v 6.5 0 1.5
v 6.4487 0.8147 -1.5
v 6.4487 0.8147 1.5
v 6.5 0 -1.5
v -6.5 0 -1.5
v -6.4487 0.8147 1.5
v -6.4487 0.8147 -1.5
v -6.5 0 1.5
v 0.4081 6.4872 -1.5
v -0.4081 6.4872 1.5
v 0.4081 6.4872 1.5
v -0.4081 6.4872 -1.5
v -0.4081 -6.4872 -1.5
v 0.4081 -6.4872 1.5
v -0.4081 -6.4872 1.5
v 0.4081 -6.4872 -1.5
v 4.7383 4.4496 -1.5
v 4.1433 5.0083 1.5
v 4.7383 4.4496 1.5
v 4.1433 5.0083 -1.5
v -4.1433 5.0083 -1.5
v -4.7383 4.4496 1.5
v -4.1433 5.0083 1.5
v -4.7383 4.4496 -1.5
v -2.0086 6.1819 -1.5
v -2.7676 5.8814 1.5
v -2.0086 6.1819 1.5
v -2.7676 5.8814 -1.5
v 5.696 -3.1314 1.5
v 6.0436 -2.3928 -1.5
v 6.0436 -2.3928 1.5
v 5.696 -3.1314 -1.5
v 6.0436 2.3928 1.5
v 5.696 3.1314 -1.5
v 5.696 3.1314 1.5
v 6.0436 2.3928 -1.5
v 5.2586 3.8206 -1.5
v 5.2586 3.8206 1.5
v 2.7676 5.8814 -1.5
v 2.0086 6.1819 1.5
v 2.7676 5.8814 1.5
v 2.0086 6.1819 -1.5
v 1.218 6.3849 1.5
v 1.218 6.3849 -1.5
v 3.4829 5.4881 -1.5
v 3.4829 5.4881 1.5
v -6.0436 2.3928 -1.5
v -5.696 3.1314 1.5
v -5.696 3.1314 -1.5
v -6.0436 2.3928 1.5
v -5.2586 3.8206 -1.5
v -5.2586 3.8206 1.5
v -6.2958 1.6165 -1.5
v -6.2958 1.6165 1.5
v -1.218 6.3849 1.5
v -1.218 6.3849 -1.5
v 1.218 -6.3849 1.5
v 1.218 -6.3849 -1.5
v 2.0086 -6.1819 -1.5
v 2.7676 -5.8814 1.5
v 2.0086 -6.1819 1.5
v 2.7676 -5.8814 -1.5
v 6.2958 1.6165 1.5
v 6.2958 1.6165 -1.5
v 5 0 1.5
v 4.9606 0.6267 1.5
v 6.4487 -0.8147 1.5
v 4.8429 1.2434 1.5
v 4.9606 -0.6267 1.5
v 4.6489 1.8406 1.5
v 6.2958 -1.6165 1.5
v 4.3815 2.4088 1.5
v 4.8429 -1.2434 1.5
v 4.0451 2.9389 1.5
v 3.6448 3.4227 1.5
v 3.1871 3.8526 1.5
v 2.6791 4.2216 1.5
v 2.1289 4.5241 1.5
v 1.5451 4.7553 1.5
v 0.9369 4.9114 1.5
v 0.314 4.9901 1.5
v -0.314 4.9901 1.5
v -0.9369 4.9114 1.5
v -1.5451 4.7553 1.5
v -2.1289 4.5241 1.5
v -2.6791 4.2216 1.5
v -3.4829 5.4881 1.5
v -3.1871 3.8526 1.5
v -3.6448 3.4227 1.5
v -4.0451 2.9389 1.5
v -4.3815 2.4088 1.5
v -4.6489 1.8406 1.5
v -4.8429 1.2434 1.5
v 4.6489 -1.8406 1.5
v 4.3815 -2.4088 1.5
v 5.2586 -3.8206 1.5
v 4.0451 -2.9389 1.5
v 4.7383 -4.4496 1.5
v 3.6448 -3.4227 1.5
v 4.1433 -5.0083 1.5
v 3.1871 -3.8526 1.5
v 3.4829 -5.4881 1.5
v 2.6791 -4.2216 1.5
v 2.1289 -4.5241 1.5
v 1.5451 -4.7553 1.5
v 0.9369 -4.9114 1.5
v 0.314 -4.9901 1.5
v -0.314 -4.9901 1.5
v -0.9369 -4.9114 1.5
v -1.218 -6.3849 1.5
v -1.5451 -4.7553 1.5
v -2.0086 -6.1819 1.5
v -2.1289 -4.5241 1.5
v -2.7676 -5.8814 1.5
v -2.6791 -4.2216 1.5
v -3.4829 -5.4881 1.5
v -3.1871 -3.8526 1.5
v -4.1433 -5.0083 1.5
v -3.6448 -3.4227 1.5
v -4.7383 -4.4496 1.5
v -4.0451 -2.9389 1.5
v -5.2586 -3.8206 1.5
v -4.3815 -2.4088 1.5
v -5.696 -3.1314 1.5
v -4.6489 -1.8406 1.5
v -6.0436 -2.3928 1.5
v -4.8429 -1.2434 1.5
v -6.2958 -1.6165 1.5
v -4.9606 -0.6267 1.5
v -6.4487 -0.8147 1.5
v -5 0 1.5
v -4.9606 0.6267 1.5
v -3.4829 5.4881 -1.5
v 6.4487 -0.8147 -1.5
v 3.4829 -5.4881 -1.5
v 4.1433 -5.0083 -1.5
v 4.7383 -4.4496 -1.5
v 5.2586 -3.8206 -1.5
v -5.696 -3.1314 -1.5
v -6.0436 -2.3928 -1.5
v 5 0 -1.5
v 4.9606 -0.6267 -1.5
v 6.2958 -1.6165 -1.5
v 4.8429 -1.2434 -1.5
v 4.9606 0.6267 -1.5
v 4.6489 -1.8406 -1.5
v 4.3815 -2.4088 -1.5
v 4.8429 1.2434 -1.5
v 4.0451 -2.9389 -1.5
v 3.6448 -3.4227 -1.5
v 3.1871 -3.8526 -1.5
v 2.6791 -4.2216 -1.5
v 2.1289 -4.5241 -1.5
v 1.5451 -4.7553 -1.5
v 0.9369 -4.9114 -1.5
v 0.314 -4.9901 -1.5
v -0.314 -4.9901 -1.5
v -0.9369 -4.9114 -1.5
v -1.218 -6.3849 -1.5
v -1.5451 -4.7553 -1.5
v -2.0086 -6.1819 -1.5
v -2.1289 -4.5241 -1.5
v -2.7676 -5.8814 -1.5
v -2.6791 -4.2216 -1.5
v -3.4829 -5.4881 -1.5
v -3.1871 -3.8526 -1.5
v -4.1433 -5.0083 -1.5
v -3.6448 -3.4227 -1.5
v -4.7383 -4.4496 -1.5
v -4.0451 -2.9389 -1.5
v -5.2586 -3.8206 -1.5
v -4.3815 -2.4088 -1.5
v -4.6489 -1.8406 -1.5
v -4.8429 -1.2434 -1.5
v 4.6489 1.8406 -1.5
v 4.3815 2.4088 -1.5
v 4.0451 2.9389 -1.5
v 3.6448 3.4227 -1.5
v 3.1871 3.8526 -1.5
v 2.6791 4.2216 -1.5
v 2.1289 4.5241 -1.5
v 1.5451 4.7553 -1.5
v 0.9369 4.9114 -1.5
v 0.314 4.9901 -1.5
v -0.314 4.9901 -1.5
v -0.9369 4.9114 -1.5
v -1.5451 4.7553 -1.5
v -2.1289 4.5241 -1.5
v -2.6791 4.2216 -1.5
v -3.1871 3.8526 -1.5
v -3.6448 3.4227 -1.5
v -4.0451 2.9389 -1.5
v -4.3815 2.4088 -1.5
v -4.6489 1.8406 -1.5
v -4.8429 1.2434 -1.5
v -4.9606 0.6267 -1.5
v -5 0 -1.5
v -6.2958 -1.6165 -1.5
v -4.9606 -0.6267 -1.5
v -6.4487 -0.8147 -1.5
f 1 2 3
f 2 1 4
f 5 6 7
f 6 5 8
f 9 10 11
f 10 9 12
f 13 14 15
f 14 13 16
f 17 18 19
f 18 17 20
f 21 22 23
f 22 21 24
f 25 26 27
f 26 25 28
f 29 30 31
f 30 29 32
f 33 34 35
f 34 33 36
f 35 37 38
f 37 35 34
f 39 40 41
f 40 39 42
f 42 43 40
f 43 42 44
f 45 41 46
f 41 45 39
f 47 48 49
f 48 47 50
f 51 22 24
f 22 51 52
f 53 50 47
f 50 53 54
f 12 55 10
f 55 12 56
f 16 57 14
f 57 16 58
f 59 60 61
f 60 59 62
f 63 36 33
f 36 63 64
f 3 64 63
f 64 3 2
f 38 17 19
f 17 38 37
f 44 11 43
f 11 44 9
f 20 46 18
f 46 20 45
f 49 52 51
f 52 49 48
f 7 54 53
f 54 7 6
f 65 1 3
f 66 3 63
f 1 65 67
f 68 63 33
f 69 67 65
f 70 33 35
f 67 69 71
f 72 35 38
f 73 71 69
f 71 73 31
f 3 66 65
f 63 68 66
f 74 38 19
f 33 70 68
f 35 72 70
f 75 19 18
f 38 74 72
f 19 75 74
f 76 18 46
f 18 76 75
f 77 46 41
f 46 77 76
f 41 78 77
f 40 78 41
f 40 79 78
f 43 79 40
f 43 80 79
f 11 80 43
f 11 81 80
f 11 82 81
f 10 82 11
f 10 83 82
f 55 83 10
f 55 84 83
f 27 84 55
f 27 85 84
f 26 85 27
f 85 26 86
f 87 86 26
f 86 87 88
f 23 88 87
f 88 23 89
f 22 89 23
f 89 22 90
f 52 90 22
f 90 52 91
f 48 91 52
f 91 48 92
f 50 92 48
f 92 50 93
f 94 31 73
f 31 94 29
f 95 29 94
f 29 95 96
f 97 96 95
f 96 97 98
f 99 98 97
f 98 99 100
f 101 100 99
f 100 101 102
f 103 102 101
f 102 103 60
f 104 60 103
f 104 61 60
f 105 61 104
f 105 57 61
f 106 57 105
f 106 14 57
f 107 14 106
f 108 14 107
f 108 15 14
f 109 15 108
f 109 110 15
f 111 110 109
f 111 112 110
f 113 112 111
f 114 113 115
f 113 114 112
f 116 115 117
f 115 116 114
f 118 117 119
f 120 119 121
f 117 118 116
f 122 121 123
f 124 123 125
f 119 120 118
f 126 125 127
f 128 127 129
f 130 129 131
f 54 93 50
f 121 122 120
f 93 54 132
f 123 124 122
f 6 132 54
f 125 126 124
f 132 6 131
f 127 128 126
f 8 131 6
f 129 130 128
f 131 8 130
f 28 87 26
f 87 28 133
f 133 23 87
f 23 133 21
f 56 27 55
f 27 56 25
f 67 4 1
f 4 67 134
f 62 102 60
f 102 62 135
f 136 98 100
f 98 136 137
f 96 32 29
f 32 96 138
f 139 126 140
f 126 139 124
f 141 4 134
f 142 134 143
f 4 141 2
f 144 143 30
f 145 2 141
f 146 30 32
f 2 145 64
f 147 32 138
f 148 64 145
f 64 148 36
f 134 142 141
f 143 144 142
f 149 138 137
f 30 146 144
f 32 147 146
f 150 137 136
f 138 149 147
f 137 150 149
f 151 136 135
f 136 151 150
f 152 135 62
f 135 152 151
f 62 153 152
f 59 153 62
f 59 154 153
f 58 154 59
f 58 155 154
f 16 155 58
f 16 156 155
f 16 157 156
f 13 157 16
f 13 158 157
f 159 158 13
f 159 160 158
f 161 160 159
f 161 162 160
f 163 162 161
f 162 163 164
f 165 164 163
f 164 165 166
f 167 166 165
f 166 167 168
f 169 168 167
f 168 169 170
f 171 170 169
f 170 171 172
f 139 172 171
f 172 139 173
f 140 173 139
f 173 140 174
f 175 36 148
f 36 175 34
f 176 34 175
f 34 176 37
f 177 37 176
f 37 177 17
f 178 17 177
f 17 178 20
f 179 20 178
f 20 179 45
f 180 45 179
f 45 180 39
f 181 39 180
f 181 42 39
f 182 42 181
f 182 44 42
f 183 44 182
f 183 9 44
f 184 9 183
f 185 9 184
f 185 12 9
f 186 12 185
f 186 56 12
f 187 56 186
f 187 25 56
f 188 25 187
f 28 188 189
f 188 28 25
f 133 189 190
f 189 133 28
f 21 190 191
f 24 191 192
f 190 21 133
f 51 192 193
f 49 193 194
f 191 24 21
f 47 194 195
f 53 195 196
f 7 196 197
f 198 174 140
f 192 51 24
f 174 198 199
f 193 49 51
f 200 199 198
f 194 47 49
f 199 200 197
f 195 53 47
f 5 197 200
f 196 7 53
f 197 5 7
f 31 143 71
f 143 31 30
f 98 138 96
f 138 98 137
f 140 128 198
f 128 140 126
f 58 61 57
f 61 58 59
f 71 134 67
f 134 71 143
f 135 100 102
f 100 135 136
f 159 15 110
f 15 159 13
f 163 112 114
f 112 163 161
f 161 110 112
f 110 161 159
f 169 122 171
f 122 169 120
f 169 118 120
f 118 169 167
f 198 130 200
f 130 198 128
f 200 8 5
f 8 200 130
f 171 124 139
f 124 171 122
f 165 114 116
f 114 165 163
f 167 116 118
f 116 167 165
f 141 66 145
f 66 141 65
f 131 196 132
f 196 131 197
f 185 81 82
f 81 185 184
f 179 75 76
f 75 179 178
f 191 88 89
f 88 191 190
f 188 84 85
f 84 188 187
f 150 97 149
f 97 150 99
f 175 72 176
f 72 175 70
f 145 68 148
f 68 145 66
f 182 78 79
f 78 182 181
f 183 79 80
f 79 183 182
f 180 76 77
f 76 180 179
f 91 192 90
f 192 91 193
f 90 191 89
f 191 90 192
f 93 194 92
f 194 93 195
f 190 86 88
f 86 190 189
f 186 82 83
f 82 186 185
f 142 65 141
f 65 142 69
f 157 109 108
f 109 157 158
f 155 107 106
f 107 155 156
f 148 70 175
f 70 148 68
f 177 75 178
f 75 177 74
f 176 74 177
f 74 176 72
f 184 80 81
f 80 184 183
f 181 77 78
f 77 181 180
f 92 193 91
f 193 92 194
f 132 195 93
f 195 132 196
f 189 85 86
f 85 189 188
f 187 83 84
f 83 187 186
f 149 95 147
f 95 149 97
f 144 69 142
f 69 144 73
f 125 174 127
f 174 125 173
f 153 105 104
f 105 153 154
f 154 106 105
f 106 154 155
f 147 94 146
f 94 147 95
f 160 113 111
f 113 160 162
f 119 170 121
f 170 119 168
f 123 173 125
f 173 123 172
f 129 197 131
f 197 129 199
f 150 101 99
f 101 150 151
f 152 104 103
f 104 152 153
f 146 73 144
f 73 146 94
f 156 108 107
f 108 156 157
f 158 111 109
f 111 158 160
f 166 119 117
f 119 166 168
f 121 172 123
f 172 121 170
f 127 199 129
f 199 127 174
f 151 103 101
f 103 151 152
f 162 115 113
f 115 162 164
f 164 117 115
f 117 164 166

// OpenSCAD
$fn = 50;


difference() {
	union() {
		translate(v = [0, 0, -1.5000000000]) {
			cylinder(h = 3, r = 6.5000000000);
		}
	}
	union() {
		translate(v = [0, 0, -100.0000000000]) {
			cylinder(h = 200, r = 5.0000000000);
		}
	}
}
